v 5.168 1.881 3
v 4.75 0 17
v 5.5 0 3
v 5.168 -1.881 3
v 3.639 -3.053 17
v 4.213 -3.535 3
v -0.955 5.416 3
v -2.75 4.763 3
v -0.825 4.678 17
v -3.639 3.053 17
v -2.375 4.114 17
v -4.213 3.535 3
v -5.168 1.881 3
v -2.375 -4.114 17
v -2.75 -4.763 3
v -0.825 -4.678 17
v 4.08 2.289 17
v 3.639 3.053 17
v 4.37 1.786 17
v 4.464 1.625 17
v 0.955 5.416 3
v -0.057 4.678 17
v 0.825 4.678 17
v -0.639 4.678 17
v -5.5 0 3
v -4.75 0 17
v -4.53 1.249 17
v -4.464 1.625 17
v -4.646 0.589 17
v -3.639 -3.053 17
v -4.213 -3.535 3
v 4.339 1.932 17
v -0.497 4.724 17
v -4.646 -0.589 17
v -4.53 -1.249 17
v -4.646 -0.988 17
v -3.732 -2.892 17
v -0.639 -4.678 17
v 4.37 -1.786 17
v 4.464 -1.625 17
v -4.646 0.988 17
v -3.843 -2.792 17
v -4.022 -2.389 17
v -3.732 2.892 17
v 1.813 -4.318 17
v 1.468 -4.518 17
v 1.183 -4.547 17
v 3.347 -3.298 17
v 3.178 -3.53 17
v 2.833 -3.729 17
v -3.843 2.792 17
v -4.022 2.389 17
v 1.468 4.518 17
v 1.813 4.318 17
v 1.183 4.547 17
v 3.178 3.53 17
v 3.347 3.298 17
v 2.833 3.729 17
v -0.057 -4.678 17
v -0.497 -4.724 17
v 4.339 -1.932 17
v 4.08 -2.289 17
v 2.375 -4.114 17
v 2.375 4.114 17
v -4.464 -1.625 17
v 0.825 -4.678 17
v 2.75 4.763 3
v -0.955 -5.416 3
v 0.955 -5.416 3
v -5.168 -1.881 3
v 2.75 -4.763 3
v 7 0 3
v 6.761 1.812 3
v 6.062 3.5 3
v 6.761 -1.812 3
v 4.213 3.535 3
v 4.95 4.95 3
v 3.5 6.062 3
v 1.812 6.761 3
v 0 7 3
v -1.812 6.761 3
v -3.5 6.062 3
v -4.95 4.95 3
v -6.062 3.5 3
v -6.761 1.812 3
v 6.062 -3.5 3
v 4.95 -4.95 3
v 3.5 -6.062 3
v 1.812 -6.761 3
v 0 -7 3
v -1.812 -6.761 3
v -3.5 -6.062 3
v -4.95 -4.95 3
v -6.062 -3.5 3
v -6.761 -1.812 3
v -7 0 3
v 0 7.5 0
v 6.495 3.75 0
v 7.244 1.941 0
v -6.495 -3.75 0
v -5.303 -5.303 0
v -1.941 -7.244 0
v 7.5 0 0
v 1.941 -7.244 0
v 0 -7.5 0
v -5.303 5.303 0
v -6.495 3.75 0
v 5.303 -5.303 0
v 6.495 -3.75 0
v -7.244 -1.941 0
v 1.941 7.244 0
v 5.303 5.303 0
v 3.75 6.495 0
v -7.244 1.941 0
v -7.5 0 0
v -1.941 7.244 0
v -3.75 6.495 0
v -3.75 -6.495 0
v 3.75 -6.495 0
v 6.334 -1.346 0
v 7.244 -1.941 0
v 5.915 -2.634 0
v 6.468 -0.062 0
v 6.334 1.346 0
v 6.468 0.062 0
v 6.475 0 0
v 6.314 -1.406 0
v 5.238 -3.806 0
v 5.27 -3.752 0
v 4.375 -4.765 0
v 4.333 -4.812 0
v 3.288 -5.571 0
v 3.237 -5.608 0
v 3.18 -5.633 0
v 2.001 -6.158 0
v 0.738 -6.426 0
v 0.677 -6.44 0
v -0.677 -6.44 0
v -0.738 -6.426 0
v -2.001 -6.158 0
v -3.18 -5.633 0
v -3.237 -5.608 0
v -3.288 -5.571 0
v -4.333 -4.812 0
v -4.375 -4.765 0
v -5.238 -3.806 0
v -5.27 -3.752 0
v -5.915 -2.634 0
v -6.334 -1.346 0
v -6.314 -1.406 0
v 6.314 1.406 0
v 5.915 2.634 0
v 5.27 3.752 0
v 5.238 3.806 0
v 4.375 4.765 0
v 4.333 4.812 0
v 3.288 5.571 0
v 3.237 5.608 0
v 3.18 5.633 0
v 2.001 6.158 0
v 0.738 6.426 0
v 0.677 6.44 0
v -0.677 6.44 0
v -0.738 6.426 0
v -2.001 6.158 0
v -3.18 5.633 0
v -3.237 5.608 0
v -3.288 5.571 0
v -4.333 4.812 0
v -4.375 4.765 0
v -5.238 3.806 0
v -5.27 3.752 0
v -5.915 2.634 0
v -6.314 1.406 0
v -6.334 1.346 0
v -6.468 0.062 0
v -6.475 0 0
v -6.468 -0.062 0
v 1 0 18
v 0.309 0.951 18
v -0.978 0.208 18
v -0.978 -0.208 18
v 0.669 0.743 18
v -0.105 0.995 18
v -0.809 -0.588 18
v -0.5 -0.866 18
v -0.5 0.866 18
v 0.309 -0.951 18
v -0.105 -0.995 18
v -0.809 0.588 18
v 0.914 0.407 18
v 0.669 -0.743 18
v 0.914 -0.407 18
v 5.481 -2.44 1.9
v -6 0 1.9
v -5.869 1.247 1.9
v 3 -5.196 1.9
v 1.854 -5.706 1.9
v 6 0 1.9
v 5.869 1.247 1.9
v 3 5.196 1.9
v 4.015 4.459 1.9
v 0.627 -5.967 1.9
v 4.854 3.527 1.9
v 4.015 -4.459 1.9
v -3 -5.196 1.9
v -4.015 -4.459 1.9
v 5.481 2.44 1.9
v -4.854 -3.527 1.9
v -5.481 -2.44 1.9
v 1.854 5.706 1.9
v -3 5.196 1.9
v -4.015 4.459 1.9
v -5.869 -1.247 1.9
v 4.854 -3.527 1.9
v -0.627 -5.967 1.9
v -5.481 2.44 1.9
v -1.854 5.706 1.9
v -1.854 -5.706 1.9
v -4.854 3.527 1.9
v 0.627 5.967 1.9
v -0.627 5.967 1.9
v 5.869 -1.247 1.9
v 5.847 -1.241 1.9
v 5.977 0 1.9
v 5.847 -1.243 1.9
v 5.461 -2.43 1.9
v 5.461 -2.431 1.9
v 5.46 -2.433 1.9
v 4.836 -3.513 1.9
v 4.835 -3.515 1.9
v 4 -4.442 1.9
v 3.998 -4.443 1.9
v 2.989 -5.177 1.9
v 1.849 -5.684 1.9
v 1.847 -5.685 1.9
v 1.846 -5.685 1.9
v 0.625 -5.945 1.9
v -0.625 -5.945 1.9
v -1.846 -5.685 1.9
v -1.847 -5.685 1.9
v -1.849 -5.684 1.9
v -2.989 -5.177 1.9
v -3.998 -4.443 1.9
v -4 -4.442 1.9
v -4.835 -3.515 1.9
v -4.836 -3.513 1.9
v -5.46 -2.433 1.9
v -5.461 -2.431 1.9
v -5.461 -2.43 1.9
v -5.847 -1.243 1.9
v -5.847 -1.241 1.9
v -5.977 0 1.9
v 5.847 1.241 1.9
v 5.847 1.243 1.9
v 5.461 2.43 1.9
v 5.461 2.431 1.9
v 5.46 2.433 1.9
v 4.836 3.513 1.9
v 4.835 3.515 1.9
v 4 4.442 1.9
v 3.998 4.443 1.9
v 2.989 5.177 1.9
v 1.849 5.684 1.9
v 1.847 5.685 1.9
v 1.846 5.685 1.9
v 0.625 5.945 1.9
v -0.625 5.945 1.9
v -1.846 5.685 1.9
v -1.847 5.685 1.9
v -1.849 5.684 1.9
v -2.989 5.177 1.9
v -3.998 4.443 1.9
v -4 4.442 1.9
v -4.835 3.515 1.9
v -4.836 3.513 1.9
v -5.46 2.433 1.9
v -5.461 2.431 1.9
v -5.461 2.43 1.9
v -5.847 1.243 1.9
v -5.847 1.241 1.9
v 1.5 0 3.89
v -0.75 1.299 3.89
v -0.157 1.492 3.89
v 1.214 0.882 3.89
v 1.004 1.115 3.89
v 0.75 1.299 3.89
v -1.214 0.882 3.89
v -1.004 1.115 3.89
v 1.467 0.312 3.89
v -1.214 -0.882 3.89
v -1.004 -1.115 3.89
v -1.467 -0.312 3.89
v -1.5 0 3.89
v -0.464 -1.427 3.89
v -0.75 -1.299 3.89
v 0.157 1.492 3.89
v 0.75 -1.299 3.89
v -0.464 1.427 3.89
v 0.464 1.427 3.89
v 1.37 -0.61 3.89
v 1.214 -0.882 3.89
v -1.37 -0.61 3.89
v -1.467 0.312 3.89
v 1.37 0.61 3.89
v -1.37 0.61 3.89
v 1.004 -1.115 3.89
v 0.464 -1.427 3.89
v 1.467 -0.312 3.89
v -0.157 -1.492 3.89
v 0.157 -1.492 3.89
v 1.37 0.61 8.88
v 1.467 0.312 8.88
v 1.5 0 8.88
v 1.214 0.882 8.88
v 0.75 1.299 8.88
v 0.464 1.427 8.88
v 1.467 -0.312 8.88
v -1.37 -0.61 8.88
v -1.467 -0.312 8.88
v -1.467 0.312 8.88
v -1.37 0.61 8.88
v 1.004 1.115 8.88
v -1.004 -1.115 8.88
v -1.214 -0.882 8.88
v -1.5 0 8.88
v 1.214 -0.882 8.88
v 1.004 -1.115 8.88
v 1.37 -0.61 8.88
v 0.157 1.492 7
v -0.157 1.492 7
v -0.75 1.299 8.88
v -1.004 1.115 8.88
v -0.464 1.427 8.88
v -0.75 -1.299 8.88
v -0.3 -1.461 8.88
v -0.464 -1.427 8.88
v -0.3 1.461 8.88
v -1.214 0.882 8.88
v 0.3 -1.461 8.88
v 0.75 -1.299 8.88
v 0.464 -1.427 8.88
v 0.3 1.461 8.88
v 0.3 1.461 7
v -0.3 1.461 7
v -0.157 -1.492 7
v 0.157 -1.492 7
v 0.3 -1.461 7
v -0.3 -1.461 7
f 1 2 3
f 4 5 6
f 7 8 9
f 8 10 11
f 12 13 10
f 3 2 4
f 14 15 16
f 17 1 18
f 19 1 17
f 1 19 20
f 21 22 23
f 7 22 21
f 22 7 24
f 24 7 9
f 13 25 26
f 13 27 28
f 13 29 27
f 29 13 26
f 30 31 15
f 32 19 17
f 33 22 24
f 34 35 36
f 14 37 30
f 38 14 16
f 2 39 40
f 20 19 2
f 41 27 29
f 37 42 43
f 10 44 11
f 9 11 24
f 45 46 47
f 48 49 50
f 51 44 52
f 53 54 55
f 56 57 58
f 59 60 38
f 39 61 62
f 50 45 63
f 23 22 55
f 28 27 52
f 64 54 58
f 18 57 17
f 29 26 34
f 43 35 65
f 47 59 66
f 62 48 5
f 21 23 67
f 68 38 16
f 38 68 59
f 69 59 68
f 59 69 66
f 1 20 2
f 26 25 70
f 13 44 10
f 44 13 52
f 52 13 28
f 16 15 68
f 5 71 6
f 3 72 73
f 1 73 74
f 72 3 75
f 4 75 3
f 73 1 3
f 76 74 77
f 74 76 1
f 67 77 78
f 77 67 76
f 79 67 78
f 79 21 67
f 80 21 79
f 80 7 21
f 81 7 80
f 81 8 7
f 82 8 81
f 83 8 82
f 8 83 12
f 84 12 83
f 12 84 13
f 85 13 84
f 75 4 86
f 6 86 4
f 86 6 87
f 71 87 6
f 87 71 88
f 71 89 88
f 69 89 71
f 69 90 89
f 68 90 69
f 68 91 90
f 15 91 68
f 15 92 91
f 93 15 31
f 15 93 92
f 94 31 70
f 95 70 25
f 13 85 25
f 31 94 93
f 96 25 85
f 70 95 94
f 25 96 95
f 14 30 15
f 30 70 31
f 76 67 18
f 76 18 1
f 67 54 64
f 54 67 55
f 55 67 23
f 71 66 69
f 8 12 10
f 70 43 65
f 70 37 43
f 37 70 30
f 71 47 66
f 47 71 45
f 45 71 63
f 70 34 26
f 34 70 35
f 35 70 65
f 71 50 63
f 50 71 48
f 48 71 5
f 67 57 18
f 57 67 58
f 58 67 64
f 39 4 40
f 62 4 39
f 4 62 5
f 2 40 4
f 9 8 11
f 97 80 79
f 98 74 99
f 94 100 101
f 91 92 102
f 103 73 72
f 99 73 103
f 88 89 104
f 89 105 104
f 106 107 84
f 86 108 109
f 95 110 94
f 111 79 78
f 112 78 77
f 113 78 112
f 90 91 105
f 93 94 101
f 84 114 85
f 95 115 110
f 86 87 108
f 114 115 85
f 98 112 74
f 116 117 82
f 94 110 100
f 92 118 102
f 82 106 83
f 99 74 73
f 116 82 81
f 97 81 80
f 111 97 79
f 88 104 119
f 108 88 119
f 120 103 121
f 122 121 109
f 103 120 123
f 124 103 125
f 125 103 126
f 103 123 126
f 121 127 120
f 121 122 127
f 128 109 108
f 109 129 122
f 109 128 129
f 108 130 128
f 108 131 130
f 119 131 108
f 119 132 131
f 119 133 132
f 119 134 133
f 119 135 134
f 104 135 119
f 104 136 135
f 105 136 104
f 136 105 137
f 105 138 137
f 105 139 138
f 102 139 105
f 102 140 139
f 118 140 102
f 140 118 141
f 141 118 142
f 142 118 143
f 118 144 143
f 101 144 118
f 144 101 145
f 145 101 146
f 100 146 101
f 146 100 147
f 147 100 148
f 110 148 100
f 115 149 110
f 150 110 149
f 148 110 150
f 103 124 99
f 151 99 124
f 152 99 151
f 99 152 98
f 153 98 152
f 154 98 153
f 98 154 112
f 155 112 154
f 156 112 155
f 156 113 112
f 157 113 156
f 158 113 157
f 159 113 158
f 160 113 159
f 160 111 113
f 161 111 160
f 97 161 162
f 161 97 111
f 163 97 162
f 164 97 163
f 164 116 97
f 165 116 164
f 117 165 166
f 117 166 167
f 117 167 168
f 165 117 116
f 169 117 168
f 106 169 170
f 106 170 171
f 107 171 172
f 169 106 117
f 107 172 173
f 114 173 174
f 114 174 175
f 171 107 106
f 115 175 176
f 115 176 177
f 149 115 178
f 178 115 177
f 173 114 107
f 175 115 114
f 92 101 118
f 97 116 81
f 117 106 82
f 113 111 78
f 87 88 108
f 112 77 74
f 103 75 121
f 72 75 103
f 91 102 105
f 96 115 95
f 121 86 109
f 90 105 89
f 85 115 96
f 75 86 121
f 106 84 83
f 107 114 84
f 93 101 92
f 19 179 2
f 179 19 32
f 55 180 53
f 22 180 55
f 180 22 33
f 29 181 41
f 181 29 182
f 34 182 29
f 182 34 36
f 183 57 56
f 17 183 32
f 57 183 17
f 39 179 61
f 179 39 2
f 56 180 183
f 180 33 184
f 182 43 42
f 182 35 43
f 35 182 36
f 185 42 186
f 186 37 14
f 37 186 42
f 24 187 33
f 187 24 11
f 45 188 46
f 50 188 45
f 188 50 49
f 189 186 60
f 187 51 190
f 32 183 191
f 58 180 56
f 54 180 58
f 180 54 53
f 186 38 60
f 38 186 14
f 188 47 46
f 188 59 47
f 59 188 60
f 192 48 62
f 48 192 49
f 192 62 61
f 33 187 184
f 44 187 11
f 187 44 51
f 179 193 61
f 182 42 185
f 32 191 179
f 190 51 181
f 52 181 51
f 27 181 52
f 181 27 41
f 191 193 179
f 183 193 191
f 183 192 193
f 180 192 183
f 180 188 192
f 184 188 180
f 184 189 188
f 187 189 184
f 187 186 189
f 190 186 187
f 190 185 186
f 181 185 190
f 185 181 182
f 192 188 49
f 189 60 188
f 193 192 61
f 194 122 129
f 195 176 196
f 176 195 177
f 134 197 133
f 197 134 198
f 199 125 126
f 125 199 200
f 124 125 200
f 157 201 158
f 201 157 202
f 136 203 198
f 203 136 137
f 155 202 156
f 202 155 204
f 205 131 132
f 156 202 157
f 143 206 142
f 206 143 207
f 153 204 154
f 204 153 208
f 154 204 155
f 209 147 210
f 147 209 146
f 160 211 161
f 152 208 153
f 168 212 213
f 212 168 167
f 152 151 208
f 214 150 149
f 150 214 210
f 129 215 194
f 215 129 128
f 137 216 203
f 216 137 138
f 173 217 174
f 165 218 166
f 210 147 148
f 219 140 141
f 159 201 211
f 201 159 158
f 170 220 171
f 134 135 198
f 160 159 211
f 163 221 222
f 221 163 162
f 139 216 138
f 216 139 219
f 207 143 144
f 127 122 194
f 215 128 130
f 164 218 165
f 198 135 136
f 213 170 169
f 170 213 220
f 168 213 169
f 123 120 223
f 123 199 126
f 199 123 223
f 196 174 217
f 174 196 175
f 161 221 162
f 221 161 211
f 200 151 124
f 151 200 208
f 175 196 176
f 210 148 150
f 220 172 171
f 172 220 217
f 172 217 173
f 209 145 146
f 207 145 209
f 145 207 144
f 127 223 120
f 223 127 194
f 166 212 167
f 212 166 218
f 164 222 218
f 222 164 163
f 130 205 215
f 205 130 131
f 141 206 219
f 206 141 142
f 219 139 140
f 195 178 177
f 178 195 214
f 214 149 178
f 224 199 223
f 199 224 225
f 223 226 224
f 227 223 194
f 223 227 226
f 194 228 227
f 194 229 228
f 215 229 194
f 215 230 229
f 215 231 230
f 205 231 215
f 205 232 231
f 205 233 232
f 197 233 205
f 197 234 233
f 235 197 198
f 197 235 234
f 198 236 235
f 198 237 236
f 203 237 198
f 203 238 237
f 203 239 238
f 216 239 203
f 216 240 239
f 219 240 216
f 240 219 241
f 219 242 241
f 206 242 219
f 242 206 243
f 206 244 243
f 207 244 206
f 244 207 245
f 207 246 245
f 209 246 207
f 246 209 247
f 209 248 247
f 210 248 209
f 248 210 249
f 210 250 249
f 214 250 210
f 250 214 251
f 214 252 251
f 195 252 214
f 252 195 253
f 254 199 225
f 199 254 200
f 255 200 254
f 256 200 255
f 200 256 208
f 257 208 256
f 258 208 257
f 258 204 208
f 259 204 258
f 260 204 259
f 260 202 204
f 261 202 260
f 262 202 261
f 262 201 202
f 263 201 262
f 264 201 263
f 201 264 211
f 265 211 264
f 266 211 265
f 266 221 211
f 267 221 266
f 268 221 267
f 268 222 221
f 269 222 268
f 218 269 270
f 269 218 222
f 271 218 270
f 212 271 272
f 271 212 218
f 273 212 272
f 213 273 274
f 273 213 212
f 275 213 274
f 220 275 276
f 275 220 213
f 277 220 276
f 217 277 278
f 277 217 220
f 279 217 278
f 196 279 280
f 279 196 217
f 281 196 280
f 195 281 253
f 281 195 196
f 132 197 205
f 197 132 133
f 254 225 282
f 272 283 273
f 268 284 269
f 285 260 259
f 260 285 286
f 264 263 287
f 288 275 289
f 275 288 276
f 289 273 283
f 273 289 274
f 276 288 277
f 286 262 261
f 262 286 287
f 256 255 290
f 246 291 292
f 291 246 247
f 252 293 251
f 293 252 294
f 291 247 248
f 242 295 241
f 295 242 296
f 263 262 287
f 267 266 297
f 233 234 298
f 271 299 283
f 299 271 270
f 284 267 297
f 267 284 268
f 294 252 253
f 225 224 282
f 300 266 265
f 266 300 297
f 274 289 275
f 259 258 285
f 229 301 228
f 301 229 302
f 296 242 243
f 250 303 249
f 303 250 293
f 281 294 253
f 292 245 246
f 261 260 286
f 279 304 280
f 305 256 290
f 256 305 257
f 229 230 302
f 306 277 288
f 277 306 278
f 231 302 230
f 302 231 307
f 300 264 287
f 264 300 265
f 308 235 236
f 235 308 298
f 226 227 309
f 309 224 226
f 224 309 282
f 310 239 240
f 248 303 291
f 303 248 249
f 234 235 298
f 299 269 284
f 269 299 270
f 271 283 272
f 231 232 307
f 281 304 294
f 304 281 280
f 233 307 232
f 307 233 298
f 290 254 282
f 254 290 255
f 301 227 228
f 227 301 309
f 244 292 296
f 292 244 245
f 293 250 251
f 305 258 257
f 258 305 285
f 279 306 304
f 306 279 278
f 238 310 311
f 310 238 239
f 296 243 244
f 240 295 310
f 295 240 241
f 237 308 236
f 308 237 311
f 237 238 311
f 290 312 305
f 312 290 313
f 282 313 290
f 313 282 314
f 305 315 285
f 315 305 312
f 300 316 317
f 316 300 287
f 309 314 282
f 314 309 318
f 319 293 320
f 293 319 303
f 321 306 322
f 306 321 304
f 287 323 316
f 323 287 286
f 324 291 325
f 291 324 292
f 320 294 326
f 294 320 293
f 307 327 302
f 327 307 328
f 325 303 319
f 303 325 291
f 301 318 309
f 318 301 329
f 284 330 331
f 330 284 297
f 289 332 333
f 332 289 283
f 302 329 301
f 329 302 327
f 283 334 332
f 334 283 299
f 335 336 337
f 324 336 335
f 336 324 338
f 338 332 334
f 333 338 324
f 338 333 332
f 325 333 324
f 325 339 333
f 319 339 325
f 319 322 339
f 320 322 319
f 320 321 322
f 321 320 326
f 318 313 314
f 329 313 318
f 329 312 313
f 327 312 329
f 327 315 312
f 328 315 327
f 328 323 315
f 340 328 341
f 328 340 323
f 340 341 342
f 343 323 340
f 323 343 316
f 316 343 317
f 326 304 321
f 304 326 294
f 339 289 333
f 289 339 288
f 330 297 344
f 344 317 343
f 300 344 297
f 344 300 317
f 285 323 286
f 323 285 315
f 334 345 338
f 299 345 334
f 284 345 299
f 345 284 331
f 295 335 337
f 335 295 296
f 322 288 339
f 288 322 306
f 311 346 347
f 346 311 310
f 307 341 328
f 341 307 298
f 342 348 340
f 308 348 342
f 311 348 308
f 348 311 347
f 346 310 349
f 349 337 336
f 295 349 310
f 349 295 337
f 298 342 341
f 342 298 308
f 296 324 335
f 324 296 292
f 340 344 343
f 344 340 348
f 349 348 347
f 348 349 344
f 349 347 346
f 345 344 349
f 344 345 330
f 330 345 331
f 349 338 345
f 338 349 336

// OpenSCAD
difference(){
    union(){
        translate([0,0,3]) cylinder(14,5.5,4.75);
        cylinder(3,7.5,7);  
        translate([0,0,17]) cylinder(1,4.75,1);
    }

    translate([0,0,-0.1])
        union(){
            //cylinder(5,6.5,2.5);  
            cylinder(2,6.5,6);
            //translate([0,0,1.2-0.01])cylinder(0.8,6,4.25);    
            translate([0,0,2-0.01])cylinder(2,6,1.5);
            translate([0,0,4-0.02])cylinder(5,1.5,1.5);  
            
            $fn=30;
            /*difference() {
                cylinder(15,2.3,2.2);
                translate([-5,1.5,10])cube([10,10,15]);
            }*/
            //translate([0,0,15])cylinder(1,2.5,0);
        }
}
translate([0,0,4+5-1]) cube([0.6,4,2],true);
